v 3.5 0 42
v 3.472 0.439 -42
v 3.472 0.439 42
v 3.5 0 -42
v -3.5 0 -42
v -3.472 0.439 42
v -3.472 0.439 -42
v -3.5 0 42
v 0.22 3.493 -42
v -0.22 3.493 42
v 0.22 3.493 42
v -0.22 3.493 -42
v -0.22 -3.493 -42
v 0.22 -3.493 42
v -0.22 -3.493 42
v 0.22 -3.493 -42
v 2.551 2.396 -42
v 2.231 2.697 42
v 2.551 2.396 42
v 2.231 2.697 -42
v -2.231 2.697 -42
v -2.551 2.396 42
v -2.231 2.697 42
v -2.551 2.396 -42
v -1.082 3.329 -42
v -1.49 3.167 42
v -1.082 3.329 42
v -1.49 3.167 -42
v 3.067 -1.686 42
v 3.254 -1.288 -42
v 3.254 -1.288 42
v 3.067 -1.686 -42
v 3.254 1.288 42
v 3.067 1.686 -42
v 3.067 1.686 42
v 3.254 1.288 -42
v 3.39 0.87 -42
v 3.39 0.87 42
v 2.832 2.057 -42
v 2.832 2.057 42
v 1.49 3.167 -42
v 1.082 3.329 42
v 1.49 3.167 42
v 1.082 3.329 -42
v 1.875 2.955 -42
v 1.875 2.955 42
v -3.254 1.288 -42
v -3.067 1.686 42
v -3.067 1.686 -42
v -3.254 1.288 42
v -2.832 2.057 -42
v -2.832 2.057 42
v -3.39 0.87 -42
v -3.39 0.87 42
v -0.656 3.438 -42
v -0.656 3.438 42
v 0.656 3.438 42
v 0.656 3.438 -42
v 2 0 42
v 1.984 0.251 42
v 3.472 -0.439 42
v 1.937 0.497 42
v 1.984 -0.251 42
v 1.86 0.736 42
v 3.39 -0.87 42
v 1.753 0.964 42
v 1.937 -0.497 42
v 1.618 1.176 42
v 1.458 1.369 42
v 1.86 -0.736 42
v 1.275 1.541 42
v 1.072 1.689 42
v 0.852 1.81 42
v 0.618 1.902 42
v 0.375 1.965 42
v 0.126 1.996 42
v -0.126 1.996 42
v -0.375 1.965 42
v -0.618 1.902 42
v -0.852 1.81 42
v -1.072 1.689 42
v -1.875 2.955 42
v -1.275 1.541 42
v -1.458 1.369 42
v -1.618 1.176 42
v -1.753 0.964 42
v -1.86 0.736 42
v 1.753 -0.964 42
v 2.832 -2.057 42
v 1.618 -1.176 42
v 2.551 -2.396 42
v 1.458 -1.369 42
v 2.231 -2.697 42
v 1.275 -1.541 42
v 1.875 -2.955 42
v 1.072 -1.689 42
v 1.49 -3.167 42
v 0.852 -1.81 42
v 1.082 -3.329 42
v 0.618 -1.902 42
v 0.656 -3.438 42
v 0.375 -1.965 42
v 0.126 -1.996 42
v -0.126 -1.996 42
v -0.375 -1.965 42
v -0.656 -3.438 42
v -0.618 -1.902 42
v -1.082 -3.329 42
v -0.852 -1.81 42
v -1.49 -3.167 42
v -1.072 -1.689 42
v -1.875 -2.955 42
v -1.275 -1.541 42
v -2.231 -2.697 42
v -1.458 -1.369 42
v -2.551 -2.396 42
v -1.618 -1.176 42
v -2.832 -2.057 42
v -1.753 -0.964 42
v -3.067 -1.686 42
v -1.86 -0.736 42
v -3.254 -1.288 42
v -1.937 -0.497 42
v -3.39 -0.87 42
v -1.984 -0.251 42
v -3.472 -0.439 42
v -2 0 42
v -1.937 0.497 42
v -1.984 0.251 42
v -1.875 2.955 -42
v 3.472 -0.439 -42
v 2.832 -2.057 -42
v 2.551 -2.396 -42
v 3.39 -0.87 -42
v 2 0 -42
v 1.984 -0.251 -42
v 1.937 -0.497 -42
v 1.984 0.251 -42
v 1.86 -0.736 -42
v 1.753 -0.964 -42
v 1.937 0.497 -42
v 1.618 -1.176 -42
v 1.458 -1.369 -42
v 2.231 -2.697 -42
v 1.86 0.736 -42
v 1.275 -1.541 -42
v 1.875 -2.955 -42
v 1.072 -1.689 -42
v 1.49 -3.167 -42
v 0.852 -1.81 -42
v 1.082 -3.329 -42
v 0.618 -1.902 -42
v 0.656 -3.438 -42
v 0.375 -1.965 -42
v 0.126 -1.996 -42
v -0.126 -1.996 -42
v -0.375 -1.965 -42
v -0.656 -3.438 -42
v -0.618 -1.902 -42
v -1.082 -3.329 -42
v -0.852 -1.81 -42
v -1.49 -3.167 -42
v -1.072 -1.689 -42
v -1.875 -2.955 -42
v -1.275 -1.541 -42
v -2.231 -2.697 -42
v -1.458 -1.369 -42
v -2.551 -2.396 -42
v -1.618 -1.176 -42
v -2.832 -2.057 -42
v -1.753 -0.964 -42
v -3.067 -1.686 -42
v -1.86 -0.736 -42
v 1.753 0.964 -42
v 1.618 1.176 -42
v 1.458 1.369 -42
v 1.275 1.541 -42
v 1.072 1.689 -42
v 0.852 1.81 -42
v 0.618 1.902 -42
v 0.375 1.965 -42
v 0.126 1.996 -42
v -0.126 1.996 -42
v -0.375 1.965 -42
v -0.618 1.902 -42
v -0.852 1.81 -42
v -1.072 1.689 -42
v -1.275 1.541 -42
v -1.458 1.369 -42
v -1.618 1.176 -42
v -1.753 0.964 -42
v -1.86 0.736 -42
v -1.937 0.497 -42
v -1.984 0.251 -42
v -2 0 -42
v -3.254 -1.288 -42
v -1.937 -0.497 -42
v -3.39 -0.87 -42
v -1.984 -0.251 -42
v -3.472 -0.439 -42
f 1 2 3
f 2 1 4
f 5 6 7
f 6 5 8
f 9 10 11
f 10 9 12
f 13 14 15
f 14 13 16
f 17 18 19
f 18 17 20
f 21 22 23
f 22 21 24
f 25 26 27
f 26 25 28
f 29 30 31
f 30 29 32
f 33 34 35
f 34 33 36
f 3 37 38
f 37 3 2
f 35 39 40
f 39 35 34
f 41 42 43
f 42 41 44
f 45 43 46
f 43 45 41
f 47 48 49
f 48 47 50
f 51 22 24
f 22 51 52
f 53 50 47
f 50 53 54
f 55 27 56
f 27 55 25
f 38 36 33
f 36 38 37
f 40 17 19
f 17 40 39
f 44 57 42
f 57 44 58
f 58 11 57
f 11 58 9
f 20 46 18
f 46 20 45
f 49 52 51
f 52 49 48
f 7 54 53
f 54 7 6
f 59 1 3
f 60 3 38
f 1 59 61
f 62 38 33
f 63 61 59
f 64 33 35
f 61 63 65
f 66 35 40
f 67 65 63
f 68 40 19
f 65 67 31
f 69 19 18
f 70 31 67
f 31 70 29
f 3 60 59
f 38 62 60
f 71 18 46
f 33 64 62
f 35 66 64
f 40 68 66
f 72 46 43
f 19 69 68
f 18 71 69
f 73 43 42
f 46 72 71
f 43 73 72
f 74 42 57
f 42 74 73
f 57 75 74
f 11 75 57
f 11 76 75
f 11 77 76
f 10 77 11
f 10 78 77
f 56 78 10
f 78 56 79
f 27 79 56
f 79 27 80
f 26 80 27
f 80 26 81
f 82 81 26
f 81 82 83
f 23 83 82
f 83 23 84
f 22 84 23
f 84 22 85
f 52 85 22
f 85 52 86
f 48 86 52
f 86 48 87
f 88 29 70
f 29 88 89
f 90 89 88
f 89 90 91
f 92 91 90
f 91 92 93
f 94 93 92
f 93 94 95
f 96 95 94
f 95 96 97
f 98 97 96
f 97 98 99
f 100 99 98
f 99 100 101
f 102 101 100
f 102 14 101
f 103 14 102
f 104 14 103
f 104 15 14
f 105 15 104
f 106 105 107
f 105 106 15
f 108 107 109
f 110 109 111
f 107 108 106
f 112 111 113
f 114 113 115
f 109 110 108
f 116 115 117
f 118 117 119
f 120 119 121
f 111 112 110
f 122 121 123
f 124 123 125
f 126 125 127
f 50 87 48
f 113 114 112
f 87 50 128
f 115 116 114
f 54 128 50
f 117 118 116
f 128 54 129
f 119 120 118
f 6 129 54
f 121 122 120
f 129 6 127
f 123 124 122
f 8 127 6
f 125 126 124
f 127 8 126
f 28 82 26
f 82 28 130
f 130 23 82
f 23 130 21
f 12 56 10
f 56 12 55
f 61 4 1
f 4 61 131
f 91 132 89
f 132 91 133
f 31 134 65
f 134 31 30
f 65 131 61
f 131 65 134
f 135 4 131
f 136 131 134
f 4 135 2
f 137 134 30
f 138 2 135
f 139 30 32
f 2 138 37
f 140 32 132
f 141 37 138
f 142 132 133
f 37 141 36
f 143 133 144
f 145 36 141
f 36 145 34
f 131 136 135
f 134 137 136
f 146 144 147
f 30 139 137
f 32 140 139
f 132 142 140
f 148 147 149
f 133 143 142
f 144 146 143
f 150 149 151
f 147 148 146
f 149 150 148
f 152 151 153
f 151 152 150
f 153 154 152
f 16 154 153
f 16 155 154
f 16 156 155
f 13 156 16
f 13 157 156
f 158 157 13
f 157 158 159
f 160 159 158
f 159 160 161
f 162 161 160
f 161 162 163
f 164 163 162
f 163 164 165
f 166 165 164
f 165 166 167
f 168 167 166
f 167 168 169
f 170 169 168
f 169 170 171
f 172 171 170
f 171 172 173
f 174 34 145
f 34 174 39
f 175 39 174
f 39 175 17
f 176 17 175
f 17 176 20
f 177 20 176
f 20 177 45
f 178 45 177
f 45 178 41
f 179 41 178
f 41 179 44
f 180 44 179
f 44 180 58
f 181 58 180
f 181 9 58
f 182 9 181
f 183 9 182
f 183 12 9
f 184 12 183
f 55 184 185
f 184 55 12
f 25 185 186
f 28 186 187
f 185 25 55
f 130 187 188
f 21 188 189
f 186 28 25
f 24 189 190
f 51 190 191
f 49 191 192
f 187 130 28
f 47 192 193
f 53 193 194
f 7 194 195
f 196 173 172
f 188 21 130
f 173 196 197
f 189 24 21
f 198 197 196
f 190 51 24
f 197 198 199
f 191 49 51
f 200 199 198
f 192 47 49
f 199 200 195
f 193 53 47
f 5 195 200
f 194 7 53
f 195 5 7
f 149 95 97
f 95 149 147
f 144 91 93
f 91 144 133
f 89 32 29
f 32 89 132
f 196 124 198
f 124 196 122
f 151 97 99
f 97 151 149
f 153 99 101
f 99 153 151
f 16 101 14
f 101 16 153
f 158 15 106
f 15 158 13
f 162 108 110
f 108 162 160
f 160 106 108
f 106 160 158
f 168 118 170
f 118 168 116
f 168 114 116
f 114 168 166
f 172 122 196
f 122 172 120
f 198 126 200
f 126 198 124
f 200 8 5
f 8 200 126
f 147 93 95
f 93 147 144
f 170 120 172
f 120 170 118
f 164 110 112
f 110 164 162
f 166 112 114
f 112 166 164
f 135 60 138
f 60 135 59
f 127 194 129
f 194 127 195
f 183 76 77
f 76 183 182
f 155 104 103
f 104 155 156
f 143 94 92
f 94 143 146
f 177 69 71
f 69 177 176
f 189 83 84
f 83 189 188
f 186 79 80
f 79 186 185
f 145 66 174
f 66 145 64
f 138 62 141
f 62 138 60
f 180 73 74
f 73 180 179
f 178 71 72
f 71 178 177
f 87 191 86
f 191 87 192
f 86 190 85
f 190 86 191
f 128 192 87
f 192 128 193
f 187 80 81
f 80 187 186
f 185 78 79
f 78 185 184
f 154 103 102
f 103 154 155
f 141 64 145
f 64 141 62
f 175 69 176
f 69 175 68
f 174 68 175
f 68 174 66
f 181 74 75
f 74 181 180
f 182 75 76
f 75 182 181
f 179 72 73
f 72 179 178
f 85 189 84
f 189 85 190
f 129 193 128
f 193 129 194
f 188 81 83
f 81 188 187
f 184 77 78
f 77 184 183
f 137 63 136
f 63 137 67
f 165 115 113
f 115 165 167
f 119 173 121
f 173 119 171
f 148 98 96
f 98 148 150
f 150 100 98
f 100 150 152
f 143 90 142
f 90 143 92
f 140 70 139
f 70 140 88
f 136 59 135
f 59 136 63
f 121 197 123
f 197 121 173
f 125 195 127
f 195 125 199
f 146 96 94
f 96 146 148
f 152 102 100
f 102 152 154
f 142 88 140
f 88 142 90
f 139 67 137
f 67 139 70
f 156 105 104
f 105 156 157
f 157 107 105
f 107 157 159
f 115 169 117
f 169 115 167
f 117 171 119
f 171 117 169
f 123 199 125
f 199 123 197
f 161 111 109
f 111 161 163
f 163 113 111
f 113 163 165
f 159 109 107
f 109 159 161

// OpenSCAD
$fn = 50;


difference() {
	union() {
		translate(v = [0, 0, -42.0000000000]) {
			cylinder(h = 84, r = 3.5000000000);
		}
	}
	union() {
		translate(v = [0, 0, -100.0000000000]) {
			cylinder(h = 200, r = 2.0000000000);
		}
	}
}
